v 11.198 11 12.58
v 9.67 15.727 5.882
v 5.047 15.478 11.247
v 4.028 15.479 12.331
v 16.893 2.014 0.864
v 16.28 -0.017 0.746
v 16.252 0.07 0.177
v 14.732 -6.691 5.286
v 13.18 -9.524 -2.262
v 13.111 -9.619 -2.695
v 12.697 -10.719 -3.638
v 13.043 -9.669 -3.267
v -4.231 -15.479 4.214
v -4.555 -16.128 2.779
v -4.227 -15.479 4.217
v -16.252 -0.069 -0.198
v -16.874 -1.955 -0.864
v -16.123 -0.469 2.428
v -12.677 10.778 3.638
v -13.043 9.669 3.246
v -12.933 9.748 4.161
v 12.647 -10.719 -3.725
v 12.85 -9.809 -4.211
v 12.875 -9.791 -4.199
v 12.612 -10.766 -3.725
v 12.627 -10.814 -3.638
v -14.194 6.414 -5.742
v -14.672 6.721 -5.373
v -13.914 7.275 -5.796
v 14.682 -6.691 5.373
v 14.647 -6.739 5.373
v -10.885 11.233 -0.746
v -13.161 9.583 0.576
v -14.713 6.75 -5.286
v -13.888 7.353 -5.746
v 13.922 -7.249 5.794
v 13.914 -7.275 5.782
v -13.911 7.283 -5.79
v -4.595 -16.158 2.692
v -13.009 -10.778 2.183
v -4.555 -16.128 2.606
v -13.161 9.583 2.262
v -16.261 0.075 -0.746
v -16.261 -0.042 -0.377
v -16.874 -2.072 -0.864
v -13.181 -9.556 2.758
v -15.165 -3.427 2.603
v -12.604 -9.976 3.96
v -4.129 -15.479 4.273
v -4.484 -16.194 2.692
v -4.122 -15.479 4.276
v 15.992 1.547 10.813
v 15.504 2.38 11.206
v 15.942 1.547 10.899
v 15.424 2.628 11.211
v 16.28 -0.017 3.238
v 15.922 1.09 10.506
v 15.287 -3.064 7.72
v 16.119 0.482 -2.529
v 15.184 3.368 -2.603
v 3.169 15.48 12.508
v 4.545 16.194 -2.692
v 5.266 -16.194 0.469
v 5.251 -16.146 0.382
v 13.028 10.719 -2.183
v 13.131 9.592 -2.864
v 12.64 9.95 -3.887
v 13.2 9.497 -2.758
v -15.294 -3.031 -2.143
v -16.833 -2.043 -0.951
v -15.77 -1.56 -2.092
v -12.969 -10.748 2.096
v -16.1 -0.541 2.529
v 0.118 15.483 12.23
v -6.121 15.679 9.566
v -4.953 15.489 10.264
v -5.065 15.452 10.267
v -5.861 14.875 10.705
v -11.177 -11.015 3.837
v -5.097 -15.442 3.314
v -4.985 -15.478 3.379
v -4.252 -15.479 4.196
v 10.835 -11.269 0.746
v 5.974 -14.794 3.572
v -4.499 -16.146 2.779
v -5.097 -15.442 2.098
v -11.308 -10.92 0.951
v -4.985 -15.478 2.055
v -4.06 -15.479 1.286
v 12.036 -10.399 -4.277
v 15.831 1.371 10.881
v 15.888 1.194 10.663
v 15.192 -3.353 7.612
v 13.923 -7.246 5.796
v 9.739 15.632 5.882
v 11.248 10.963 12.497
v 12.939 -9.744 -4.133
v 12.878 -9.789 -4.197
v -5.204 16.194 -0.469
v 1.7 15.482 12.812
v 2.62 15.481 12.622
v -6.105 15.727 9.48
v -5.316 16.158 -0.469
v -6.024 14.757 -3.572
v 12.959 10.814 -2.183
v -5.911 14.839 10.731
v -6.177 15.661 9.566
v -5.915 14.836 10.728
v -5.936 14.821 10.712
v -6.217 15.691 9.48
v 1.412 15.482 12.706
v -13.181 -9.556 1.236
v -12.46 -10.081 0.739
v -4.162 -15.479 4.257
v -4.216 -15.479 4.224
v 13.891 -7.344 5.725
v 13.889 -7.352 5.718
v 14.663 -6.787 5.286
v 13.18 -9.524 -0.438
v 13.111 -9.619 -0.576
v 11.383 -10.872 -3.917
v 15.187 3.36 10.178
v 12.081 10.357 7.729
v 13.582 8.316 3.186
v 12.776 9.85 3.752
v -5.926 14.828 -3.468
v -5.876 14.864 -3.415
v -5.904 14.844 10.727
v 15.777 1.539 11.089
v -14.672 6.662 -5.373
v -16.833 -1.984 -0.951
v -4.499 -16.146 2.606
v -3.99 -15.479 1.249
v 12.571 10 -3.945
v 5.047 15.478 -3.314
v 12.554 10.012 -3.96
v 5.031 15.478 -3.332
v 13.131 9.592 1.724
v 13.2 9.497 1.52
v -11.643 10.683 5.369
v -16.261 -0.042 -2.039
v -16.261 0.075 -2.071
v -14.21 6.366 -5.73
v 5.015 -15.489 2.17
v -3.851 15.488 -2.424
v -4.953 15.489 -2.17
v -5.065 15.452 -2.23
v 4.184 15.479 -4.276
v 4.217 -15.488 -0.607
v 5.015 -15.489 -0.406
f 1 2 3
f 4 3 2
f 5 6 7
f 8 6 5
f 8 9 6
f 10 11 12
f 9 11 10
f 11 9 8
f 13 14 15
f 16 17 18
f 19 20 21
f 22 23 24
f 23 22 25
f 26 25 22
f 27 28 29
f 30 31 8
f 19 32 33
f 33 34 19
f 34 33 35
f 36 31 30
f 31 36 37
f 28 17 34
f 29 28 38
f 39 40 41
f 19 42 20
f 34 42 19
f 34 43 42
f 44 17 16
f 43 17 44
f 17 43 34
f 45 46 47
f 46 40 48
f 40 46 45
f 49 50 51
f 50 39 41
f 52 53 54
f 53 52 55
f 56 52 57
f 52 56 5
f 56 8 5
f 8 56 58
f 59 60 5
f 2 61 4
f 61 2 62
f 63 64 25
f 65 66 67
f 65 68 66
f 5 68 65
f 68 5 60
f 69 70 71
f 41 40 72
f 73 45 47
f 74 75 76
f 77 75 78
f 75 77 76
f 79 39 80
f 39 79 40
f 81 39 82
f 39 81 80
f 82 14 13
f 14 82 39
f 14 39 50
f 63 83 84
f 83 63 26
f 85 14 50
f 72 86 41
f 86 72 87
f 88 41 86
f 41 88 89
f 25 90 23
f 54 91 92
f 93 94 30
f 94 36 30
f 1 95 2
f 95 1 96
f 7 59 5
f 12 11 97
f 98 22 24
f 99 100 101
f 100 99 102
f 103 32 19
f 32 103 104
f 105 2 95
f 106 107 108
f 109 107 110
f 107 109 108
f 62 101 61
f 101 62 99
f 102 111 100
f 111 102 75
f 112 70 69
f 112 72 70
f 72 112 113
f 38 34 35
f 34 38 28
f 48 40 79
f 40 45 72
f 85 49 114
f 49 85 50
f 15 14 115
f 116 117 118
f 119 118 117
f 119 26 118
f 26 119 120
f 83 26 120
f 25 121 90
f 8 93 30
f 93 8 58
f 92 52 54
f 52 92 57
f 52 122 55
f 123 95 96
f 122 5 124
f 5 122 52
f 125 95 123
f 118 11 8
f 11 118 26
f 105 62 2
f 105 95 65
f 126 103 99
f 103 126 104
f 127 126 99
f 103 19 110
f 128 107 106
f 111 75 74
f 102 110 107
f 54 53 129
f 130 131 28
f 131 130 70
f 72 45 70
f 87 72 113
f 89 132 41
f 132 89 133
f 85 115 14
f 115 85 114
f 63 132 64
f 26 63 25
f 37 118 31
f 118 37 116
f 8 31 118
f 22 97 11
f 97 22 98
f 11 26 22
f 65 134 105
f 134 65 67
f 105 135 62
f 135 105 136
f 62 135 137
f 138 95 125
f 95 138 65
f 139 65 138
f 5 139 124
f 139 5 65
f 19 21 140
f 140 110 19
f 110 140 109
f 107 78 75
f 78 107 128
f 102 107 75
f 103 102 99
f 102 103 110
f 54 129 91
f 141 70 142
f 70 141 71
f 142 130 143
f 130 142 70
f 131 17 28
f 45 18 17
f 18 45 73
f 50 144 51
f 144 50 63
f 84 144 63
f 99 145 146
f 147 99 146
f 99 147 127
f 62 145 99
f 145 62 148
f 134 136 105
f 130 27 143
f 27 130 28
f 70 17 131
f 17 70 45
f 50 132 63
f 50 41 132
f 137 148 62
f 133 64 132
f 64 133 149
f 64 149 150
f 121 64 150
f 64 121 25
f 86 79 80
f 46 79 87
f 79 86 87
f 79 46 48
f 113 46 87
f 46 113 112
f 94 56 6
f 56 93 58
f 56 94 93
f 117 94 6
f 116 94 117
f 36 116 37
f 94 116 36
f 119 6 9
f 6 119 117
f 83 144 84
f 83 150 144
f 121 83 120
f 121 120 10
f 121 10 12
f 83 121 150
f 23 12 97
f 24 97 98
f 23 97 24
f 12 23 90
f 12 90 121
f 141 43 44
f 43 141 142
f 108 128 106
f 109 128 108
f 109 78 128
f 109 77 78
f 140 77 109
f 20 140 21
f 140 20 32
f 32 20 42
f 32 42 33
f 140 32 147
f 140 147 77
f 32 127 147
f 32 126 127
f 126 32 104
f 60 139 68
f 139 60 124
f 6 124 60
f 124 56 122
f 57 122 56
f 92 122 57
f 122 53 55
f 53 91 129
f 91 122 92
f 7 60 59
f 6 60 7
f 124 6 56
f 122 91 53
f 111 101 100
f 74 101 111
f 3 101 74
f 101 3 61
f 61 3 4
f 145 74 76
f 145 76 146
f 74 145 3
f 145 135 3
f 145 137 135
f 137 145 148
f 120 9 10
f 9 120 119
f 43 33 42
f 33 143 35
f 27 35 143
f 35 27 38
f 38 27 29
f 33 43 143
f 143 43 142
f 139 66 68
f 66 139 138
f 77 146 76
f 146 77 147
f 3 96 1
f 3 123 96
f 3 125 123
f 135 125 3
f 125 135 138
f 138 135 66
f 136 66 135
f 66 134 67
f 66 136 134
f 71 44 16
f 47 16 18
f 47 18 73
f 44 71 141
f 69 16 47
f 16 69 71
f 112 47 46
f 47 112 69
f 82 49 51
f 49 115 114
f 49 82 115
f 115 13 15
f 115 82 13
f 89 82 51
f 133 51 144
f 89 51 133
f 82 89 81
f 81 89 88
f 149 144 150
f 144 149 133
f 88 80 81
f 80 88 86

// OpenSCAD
// Auto-generated OpenSCAD file

    inner_points = 10*[[1.3099900587146427, 0.9497157652788513, -0.4999999999995077], [1.3099900587145388, 0.9497157652784762, 0.5000000000004923], [-1.3099900587145388, -0.9497157652784762, -0.5000000000004923], [-1.3099900587146427, -0.9497157652788513, 0.4999999999995077], [1.6180331406628494, -0.001656643225752208, -0.4999999999998327], [1.6180331406627457, -0.0016566432261273523, 0.5000000000001673], [0.5015752992619325, 1.5383290310986224, -0.49999999999937084], [0.5015752992618286, 1.5383290310982474, 0.5000000000006292], [-0.5015752992618286, -1.5383290310982474, -0.5000000000006292], [-0.5015752992619325, -1.5383290310986224, 0.49999999999937084], [-1.6180331406627457, 0.0016566432261273523, -0.5000000000001673], [-1.6180331406628494, 0.001656643225752208, 0.4999999999998327], [1.3080425578016073, -0.9523962703252791, -0.5000000000002215], [1.3080425578015036, -0.9523962703256543, 0.49999999999977845], [-0.49842417659141613, 1.5393528929194857, -0.49999999999947425], [-0.49842417659151983, 1.5393528929191105, 0.5000000000005257], [0.49842417659151983, -1.5393528929191105, -0.5000000000005257], [0.49842417659141613, -1.5393528929194857, 0.49999999999947425], [-1.3080425578015036, 0.9523962703256543, -0.49999999999977845], [-1.3080425578016073, 0.9523962703252791, 0.5000000000002215], [0.8101566572239665, 1.1126874591532696, -1.3506508083515383], [-1.3094517827007117, -0.4239849287192254, -1.350650808352335], [1.308580833815434, -0.42666543376602845, -1.350650808352064], [-0.0014092248991565137, -1.3763811990446921, -1.3506508083525566], [-0.8078764834388312, 1.1143441023792096, -1.3506508083517057], [0.8092857083384629, 0.2620370966671998, -1.876381920470991], [-0.5007043503761278, -0.687678668611464, -1.8763819204714836], [0.000870948885752787, 0.850650362486971, -1.8763819204708543], [-0.8087474323243347, 0.2636937398931396, -1.8763819204711585], [0.4992951254772207, -0.688702530432327, -1.87638192047138], [0.5007043503762161, 0.6876786686117831, 1.0257311121194437], [-0.8092857083383747, -0.2620370966668807, 1.0257311121189512], [0.808747432324423, -0.2636937398928205, 1.0257311121191186], [-0.0008709488856644687, -0.8506503624866519, 1.0257311121188144], [-0.49929512547713234, 0.6887025304326461, 1.0257311121193402]];

    outer_points = 10*[[1.6792886560853284, 0.2013716374572302, 0.08644687340106805], [1.4757777400560284, -0.2013716374572302, -0.8059550324508248], [-1.4757777400560284, 0.2013716374572302, 0.8059550324508248], [-1.6792886560853284, -0.2013716374572302, -0.08644687340106805], [1.2928432796682825, 1.0718860131747094, -0.21829021445516045], [1.0893323636389824, 0.6691427382602492, -1.1106921203070534], [1.4631699692206952, -0.6691427382602492, 0.5285977920443675], [1.2596590531913952, -1.0718860131747094, -0.36380411380752536], [-1.2596590531913952, 1.0718860131747094, 0.36380411380752536], [-1.4631699692206952, 0.6691427382602492, -0.5285977920443675], [-1.0893323636389824, -0.6691427382602492, 1.1106921203070534], [-1.2928432796682825, -1.0718860131747094, 0.21829021445516045], [0.451442838965622, 1.609893485063508, -0.26921426159590167], [0.24793192293632205, 1.2071502101490479, -1.1616161674477947], [0.7270372118526772, -1.2071502101490479, 0.9392759187099872], [0.5235262958233773, -1.609893485063508, 0.046874012858094255], [-0.5235262958233773, 1.609893485063508, -0.046874012858094255], [-0.7270372118526772, 1.2071502101490479, -0.9392759187099872], [-0.24793192293632205, -1.2071502101490479, 1.1616161674477947], [-0.451442838965622, -1.609893485063508, 0.26921426159590167], [1.5892095552954468, 0.15465966592254854, 1.081285426793642], [-0.9632927775642309, 0.15465966592254854, 1.6633797550563276], [0.9639278014574195, 1.5631815135288265, 0.5882104610096014], [-0.6136053966132589, 1.5631815135288265, 0.9479645405344798], [0.39812173364181414, -0.715854709794931, 1.7457765941747487], [1.1470922329142266, 0.9963044555500771, 1.3913923782528013], [-0.43044096515645186, 0.9963044555500771, 1.7511464577776796], [0.9309735460495933, 0.1257900798325976, 1.8335432968961007], [-0.04399558873940601, 0.1257900798325976, 2.055883545633908], [0.30569179221156606, 1.5343119274388755, 1.3404683311120602], [0.60355769038524, -0.6537105631857435, -0.9920240551898661], [-0.9739755076854384, -0.6537105631857435, -0.6322699756649878], [0.21711231396819408, 0.21680381253173597, -1.2967611430460946], [-0.7578568208208052, 0.21680381253173597, -1.0744208943082874], [-0.13257506698277793, -1.1917180350745418, -0.5813459285242466]];

    // Convex hull for inner set (I)
    module inner_hull() {
        hull() {
            for (p = inner_points) {
                translate(p) sphere(r=0.1);
            }
        }
    }

    // Convex hull for outer set (O) minus inner hull (O \ I)
    module outer_minus_inner() {
        difference() {
            hull() {
                for (p = outer_points) {
                    translate(p) sphere(r=0.1);
                }
            }
            inner_hull(); // Subtract inner hull
        }
    }

    // Convex hull for outer set (O) minus all translated inner hulls
    module outer_minus_AllTranslationInner() {
        difference() {
            hull() {
                for (p = outer_points) {
                    translate(p) sphere(r=0.1);
                }
            }
            hull() {
                translate([0,0,50]) inner_hull();
                translate([0,0,-50]) inner_hull();
            }; // Subtract translated inner hulls
        }
    }

    // Difference between outer_minus_inner and outer_minus_AllTranslationInner
    module outer_minus_inner_diff() {
        difference() {
            // Outer minus inner
            difference() {
                hull() {
                    for (p = outer_points) {
                        translate(p) sphere(r=0.1);
                    }
                }
                inner_hull();
            }

            // Subtract Outer minus AllTranslationInner
            difference() {
                hull() {
                    for (p = outer_points) {
                        translate(p) sphere(r=0.1);
                    }
                }
                hull() {
                    translate([0,0,50]) inner_hull();
                    translate([0,0,-50]) inner_hull();
                };
            }
        }
    }

    // Rendering all with colors applied
    color([0, 1, 0, 1]) outer_minus_AllTranslationInner(); // Opaque green
    
